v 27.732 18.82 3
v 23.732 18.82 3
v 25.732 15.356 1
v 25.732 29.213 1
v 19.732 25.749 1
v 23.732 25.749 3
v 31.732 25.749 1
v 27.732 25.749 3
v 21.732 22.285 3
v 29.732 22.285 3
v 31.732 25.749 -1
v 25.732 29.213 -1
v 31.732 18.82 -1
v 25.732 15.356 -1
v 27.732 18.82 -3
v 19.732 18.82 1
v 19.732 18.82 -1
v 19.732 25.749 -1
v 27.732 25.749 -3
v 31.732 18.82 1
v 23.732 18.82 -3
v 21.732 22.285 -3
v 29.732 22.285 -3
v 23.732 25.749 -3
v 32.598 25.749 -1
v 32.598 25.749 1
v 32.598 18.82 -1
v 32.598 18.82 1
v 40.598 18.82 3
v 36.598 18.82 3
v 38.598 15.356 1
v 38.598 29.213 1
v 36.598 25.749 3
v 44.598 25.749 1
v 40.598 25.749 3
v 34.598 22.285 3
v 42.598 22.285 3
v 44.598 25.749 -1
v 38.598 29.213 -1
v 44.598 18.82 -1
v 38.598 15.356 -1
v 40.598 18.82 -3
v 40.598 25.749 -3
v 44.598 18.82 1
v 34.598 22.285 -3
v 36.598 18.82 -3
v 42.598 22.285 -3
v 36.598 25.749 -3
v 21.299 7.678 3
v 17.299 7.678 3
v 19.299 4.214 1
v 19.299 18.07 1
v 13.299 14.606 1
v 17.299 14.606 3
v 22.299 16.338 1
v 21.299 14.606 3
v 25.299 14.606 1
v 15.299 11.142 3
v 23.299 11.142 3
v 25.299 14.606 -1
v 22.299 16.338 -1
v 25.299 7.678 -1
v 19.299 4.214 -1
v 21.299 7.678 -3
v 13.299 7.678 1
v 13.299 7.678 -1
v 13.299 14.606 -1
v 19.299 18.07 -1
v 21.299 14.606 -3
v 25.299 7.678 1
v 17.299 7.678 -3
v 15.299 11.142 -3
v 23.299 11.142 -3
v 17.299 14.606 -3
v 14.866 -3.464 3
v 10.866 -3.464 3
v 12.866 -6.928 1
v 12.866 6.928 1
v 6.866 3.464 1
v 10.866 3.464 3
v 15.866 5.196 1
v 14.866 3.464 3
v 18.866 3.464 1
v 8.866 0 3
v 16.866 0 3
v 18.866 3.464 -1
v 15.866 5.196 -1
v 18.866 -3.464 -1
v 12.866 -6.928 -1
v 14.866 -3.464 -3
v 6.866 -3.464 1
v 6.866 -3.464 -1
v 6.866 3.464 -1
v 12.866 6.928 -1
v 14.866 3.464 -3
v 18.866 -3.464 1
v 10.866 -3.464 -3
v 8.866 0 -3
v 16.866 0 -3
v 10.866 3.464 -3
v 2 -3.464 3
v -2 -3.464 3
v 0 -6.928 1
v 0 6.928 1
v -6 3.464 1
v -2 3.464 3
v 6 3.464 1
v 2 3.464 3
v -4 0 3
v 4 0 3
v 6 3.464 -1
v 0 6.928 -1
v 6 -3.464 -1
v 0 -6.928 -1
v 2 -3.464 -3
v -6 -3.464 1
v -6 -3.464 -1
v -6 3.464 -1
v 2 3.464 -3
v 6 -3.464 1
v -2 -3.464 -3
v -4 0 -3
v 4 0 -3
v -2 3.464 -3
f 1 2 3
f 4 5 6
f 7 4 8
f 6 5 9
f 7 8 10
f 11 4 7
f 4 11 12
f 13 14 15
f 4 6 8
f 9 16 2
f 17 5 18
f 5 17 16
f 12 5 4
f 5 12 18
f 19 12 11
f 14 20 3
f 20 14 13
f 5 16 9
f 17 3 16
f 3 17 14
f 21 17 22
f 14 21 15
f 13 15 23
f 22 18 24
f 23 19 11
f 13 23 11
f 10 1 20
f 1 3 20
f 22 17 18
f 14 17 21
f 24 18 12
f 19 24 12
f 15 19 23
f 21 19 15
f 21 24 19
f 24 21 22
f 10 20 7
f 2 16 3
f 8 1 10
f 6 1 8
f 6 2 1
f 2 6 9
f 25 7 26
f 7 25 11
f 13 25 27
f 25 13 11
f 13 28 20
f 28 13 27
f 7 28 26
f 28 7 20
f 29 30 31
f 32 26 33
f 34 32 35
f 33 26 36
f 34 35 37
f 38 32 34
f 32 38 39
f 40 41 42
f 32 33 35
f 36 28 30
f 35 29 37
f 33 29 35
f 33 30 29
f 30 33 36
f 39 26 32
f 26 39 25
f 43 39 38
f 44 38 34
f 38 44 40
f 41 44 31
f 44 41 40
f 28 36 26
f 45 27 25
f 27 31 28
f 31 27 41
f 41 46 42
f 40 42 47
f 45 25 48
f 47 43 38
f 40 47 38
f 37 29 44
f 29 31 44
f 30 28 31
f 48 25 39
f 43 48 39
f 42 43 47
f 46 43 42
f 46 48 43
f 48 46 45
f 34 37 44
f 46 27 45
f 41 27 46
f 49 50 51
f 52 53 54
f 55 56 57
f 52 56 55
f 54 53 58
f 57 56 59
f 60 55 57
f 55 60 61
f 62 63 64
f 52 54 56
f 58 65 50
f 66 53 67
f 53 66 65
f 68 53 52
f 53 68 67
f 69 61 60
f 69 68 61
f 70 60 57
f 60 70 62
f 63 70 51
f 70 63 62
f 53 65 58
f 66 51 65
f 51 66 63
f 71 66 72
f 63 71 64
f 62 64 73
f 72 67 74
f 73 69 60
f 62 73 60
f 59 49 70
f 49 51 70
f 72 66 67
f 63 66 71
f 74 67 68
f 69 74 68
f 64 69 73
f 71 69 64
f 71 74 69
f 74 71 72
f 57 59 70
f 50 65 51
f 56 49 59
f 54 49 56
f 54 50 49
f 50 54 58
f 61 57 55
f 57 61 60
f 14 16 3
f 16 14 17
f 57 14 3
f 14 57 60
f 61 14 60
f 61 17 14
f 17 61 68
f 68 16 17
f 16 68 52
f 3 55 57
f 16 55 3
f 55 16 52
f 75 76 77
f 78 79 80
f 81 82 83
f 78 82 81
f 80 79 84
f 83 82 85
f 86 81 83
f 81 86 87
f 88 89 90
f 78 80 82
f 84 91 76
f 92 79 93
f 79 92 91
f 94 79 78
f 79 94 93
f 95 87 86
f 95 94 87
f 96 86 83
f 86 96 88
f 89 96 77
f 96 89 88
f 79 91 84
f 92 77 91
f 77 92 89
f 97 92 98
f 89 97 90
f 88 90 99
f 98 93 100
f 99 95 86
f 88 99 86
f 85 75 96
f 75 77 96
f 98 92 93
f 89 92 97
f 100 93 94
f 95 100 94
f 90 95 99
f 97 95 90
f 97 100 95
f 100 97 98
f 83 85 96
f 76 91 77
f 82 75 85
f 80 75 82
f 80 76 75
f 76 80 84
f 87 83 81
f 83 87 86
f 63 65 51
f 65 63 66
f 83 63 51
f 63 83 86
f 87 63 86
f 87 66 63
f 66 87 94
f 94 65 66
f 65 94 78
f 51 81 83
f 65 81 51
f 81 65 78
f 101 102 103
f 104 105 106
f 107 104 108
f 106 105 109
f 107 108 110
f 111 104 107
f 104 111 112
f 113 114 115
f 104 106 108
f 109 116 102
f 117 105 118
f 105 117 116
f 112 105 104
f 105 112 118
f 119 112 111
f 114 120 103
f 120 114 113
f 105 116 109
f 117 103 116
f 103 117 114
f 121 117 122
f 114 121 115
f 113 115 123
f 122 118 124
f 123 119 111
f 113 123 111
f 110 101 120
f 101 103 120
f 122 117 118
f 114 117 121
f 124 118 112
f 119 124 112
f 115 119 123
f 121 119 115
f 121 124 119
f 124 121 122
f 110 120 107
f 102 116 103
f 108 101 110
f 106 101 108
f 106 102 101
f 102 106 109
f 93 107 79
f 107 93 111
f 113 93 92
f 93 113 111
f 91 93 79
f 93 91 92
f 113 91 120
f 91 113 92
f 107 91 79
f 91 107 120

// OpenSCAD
// file: gem-common.scad
angles = [for(i = [0:5]) i * (360 / 6)];

inner_poly_radius=8 * cos(60);
outer_poly_radius=8 * cos(30);
outer_poly_z=1;
inner_poly_z=3;


gap_between_gems = cos(30);
distance_to_corner = cos(30) * outer_poly_radius * 2 + gap_between_gems;


module edge_connector(angle = 0) {
    function make_point_2d(r, angle, height) = [r * sin(angle), height];
    
    points = [
        make_point_2d(outer_poly_radius, 30, outer_poly_z),
        make_point_2d(outer_poly_radius, -30, outer_poly_z),
        make_point_2d(outer_poly_radius, -30, -outer_poly_z),
        make_point_2d(outer_poly_radius, 30, -outer_poly_z),
    ];
    
    rotate([0,0,angle]) {
        translate([(distance_to_corner - gap_between_gems) / 2,0,0]){
            rotate([90, 0, 90]) {
                linear_extrude(gap_between_gems) {
                    polygon(points);
                }
            }
        }
    }
}

module move(distance, angle) {
    translate([distance * cos(angle), distance * sin(angle), 0]) {
        children();
    }
}


module corner_connector(angle=0) {
    r = 0.5;
    rotate_angle = angle + 30;
    move(outer_poly_radius + r, rotate_angle) {
        translate([0,0, -outer_poly_z]) {
            rotate([0,0,-rotate_angle]) {
                cylinder($fn=3, r=r, h=outer_poly_z * 2);
            }
        }
    }
}

module gem() {
    function make_point(r, angle, height) = [r * cos(angle), r * sin(angle), height];
    
    top_poly = [for(th = angles) make_point(inner_poly_radius, th, inner_poly_z)];
    top_outer_poly = [for(th = angles) make_point(outer_poly_radius, th + 30, outer_poly_z)];
    bottom_outer_poly = [for(th = angles) make_point(outer_poly_radius, th + 30, -outer_poly_z)];
    bottom_poly = [for(th = angles) make_point(inner_poly_radius, th, -inner_poly_z)];
 
    function rot(n, base) = (n + 1 - base) % 6 + base;
    
    faces = [
        [5, 4, 3, 2, 1, 0],
        for(i = [0:5]) [i, (i + 1) % 6, i + 6],
        for(i = [6:11]) [i, (i - 5) % 6, rot(i, 6)],
        for(i = [6:11]) [i, rot(i, 6), rot(i, 6) + 6, i + 6],
        for(i = [12:17]) [i, rot(i, 12), rot(i, 12) + 6],
        for(i = [18:23]) [i, i-6, rot(i, 18)],
        [18, 19, 20, 21, 22, 23],
    ];
    
    polyhedron(
        concat(
            top_poly,
            top_outer_poly,
            bottom_outer_poly,
            bottom_poly
        ),
        faces
    );
}
// main file
include <./gem-common.scad>

gem();
edge_connector();
move(distance_to_corner, 0) {
    gem();
    edge_connector(60);
    move(distance_to_corner, 60) {
        gem();
        edge_connector(60);
        move(distance_to_corner, 60) {
            gem();
            edge_connector();
            move(distance_to_corner, 0) {
                gem();
            }
        }
    }
}
